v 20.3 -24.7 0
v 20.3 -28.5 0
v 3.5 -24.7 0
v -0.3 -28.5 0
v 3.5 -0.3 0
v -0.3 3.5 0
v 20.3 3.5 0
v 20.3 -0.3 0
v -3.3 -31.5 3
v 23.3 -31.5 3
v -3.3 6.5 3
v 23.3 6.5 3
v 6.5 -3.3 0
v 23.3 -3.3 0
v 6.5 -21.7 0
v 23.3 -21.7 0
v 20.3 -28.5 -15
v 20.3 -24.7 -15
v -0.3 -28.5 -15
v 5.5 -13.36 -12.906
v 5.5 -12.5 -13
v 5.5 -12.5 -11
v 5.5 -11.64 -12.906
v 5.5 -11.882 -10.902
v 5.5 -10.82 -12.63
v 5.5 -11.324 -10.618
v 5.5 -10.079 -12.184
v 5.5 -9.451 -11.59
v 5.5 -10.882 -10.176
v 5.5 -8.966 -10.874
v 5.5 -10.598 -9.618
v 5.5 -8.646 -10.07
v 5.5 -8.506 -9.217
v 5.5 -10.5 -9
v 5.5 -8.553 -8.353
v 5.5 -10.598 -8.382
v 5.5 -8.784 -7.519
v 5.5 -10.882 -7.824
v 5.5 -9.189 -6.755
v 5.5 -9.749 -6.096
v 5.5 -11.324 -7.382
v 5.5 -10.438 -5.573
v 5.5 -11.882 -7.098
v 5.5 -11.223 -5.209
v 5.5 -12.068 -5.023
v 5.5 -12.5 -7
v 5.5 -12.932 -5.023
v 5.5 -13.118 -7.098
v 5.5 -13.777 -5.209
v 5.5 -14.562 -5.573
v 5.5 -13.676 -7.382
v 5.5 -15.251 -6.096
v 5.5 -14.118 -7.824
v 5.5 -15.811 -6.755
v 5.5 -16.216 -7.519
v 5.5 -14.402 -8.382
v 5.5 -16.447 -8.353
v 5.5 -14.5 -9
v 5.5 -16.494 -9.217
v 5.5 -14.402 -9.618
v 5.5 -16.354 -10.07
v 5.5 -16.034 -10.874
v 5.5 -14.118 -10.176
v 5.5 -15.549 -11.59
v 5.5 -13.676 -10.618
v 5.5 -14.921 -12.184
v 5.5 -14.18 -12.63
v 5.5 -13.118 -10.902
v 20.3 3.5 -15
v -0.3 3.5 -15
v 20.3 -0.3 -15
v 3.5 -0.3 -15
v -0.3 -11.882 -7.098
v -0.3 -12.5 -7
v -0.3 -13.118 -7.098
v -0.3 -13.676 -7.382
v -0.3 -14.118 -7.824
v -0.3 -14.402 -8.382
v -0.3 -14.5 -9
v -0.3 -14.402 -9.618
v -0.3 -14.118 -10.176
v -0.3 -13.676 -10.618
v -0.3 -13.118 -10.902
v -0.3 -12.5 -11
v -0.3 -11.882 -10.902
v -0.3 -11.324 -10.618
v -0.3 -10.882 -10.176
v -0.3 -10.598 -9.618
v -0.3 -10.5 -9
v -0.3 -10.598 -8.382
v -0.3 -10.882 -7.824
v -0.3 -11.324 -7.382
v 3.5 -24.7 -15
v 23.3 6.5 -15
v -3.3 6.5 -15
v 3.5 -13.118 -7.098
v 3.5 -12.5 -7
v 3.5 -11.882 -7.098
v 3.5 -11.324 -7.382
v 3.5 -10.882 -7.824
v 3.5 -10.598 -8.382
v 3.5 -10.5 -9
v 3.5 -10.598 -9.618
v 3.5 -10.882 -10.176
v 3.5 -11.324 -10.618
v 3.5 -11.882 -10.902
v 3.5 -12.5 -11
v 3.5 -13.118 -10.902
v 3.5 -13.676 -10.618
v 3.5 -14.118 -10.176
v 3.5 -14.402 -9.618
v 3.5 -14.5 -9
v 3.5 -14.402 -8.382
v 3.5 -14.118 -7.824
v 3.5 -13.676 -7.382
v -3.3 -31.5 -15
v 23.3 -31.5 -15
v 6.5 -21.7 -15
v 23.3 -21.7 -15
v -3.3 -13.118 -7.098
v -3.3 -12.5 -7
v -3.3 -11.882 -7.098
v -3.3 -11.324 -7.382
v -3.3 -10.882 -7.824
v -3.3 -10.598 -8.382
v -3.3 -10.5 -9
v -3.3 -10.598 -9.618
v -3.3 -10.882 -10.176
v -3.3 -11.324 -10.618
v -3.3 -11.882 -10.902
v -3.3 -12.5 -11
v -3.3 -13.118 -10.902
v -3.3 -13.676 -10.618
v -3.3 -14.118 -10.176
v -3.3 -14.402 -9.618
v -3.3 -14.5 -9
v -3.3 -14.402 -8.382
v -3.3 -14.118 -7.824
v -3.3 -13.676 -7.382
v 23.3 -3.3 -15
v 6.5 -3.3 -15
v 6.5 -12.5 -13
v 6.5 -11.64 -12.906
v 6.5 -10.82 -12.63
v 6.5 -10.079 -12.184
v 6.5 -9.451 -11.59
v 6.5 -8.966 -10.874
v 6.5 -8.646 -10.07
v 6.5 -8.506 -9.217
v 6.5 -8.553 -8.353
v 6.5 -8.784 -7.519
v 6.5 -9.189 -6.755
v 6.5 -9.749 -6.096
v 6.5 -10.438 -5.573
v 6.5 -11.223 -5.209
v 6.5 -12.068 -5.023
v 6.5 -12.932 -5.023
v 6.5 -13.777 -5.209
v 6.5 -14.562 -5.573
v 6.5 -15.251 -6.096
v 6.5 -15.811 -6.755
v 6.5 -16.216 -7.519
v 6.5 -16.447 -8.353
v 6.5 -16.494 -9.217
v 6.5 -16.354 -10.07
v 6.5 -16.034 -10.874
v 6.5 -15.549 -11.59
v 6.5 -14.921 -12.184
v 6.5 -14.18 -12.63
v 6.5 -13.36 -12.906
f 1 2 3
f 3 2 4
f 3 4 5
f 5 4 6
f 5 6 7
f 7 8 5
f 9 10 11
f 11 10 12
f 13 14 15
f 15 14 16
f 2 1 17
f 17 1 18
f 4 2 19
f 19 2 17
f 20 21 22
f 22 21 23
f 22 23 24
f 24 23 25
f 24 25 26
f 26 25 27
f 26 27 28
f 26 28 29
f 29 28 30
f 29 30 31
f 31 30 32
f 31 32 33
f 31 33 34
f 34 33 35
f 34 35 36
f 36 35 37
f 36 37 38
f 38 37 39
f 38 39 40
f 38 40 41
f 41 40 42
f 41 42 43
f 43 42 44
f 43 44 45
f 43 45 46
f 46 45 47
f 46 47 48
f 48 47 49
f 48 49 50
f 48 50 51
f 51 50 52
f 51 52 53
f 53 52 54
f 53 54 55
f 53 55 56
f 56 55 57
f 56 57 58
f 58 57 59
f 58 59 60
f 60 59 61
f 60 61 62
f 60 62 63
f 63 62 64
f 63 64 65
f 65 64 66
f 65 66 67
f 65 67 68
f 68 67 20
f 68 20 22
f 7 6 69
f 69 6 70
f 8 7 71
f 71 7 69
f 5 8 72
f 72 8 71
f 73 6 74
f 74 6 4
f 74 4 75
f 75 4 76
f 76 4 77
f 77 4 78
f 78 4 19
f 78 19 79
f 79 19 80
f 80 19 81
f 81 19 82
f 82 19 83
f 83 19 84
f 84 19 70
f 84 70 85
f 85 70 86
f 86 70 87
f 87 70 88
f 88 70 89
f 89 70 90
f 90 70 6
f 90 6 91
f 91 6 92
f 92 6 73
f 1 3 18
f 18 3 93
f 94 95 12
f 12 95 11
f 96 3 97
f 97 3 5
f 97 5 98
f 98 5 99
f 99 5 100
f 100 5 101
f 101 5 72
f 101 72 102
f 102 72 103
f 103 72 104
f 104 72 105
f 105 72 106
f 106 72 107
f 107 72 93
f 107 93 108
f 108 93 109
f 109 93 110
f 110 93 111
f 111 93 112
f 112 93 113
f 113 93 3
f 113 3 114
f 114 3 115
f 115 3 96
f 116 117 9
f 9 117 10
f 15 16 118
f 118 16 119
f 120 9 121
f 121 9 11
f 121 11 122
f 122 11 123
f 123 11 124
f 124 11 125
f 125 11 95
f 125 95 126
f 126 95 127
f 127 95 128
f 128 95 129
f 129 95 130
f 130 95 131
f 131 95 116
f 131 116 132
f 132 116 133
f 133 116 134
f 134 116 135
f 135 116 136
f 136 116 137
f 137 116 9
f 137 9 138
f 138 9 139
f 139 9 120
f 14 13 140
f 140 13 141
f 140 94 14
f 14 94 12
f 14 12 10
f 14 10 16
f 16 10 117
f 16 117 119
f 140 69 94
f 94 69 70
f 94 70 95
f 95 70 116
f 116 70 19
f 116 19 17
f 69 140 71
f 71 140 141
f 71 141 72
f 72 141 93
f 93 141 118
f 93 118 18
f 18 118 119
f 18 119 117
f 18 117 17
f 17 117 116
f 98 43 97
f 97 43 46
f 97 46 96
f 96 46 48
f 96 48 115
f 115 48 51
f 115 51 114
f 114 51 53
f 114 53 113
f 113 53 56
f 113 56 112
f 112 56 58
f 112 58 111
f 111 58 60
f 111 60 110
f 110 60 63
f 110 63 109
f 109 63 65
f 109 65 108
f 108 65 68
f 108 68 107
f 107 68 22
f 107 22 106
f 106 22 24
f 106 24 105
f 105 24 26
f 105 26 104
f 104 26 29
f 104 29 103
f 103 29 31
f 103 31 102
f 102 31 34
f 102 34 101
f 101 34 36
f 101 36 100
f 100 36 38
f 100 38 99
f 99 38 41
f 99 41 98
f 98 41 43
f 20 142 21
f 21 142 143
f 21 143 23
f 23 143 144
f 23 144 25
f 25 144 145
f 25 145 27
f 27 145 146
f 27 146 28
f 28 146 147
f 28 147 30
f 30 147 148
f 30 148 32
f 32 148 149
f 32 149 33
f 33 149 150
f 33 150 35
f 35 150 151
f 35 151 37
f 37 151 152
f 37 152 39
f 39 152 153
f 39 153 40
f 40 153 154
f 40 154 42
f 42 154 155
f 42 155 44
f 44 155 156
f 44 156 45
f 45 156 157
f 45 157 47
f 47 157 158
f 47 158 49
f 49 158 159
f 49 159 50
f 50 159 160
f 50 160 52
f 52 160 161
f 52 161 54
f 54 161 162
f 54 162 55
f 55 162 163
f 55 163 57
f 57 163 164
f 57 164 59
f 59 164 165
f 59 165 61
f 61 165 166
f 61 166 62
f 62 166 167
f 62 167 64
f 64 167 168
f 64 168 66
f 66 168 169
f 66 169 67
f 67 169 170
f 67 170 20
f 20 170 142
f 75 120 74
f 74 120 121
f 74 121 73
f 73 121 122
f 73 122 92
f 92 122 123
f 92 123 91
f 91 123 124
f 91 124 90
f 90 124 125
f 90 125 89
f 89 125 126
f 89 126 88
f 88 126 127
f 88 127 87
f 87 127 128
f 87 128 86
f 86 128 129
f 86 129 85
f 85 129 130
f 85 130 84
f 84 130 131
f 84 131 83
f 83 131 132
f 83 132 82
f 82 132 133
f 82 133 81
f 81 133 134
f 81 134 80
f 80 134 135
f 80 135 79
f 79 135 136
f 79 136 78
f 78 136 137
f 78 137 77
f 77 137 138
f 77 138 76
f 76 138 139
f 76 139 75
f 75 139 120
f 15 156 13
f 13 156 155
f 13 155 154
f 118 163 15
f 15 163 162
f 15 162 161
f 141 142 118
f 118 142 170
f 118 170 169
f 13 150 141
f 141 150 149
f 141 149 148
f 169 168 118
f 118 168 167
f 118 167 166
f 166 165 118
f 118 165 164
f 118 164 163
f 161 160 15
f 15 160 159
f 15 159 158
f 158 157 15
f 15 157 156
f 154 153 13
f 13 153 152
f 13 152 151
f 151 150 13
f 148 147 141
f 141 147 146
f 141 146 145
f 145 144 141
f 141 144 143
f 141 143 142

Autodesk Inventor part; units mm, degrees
ref_plane "YZ Plane" through (0, 0, 0) normal (1, 0, 0) x (0, 1, 0)
ref_plane "XZ Plane" through (0, 0, 0) normal (0, 1, 0) x (-1, 0, 0)
ref_plane "XY Plane" through (0, 0, 0) normal (0, 0, 1) x (1, 0, 0)
sketch "Sketch1" plane through (0, 0, 0) normal (0, 0, 1) x (1, 0, 0)
  line L0 (0, 0) -> (20, 0) projected
  line L1 (20, 0) -> (20, 3.2) projected
  line L2 (0, 3.2) -> (20, 3.2) projected
  line L3 (0, 0) -> (0, 3.2) projected
  line L4 (20, -25) -> (0, -25) projected
  line L5 (0, -25) -> (0, -28.2) projected
  line L6 (20, -28.2) -> (0, -28.2) projected
  line L7 (20, -25) -> (20, -28.2) projected
  line L8 (3.2, -25) -> (3.2, 0) projected
  line L9 (0, -25) -> (0, 0) projected
  line L10 (-0.3, -0.3) -> (-0.3, 3.5)
  line L11 (-0.3, 3.5) -> (20.3, 3.5)
  line L12 (20.3, 3.5) -> (20.3, -0.3)
  line L13 (20.3, -24.7) -> (20.3, -28.5)
  line L14 (20.3, -28.5) -> (-0.3, -28.5)
  line L15 (-0.3, -28.5) -> (-0.3, -24.7)
  line L16 (3.5, -24.7) -> (3.5, -0.3)
  line L17 (-0.3, -0.3) -> (-0.3, -24.7)
  line L18 (20.3, -0.3) -> (3.5, -0.3)
  line L19 (3.5, -24.7) -> (20.3, -24.7)
  line L20 (6.5, -3.3) -> (6.5, -21.7)
  line L21 (6.5, -21.7) -> (23.3, -21.7)
  line L22 (23.3, -21.7) -> (23.3, -31.5)
  line L23 (23.3, -31.5) -> (-3.3, -31.5)
  line L24 (-3.3, -31.5) -> (-3.3, -24.7)
  line L25 (-3.3, -24.7) -> (-3.3, -0.3)
  line L26 (-3.3, -0.3) -> (-3.3, 6.5)
  line L27 (-3.3, 6.5) -> (23.3, 6.5)
  line L28 (23.3, 6.5) -> (23.3, -3.3)
  line L29 (23.3, -3.3) -> (6.5, -3.3)
  dimension "d2" = 0.3
  dimension "d3" = 0.3
  dimension "d4" = 0.3
  dimension "d5" = 24.4
  dimension "d6" = 3.8
  dimension "d7" = 3
extrude "Extrusion1" add sketch "Sketch1" against normal blind 15 contours L20 L21 L22 L23 L24 L25 L26 L27 L28 L29
sketch "Sketch4" plane through (0, 0, 0) normal (0, 0, 1) x (1, 0, 0)
  line L0 (23.3, -3.3) -> (23.3, 6.5) projected
  line L1 (23.3, 6.5) -> (-3.3, 6.5) projected
  line L2 (23.3, -3.3) -> (6.5, -3.3) projected
  line L3 (6.5, -3.3) -> (6.5, -21.7) projected
  line L4 (6.5, -21.7) -> (23.3, -21.7) projected
  line L5 (-3.3, -0.3) -> (-3.3, 6.5) projected
  line L6 (-3.3, -31.5) -> (23.3, -31.5) projected
  line L7 (23.3, -31.5) -> (23.3, -21.7) projected
  line L8 (23.3, -21.7) -> (6.5, -21.7) projected
  line L9 (23.3, 6.5) -> (23.3, -3.3) projected
  line L10 (23.3, -3.3) -> (23.3, 6.5)
  line L11 (-3.3, -31.5) -> (-3.3, 6.5) projected
  line L12 (23.3, 6.5) -> (-3.3, 6.5)
  line L13 (-3.3, 6.5) -> (-3.3, -31.5)
  line L14 (23.3, -31.5) -> (-3.3, -31.5) projected
  line L15 (-3.3, -31.5) -> (23.3, -31.5)
  line L16 (23.3, -21.7) -> (23.3, -31.5) projected
  line L17 (23.3, -31.5) -> (23.3, -21.7)
  line L18 (6.5, -3.3) -> (6.5, -21.7) projected
  line L19 (23.3, -3.3) -> (6.5, -3.3) projected
  line L20 (6.5, -3.3) -> (23.3, -3.3) projected
  line L21 (23.3, -3.3) -> (23.3, -21.7)
  point P0 (0, 0)
extrude "Extrusion3" add sketch "Sketch4" along normal blind 3
sketch "Sketch5" plane through (6.5, -21.7, -15) normal (1, 0, 0) x (0, 0, -1)
  line L0 (0, 18.4) -> (0, 0) projected
  line L1 (-15, 18.4) -> (0, 18.4) projected
  line L2 (-15, 0) -> (0, 0) projected
  line L3 (-15, 0) -> (-15, 18.4) projected
  circle A0 centre (-6, 9.2) radius 2
  circle A1 centre (-6, 9.2) radius 4
  point P0 (-15, 21.7)
  dimension "d14" = 4
  dimension "d15" = 6
  dimension "d16" = 8
  dimension "d17" = 9.2
extrude "Extrusion4" cut sketch "Sketch5" against normal blind 1 contours A1
extrude "Extrusion5" cut sketch "Sketch5" against normal blind 80 contours A0
properties part number "Tope_Carril"
